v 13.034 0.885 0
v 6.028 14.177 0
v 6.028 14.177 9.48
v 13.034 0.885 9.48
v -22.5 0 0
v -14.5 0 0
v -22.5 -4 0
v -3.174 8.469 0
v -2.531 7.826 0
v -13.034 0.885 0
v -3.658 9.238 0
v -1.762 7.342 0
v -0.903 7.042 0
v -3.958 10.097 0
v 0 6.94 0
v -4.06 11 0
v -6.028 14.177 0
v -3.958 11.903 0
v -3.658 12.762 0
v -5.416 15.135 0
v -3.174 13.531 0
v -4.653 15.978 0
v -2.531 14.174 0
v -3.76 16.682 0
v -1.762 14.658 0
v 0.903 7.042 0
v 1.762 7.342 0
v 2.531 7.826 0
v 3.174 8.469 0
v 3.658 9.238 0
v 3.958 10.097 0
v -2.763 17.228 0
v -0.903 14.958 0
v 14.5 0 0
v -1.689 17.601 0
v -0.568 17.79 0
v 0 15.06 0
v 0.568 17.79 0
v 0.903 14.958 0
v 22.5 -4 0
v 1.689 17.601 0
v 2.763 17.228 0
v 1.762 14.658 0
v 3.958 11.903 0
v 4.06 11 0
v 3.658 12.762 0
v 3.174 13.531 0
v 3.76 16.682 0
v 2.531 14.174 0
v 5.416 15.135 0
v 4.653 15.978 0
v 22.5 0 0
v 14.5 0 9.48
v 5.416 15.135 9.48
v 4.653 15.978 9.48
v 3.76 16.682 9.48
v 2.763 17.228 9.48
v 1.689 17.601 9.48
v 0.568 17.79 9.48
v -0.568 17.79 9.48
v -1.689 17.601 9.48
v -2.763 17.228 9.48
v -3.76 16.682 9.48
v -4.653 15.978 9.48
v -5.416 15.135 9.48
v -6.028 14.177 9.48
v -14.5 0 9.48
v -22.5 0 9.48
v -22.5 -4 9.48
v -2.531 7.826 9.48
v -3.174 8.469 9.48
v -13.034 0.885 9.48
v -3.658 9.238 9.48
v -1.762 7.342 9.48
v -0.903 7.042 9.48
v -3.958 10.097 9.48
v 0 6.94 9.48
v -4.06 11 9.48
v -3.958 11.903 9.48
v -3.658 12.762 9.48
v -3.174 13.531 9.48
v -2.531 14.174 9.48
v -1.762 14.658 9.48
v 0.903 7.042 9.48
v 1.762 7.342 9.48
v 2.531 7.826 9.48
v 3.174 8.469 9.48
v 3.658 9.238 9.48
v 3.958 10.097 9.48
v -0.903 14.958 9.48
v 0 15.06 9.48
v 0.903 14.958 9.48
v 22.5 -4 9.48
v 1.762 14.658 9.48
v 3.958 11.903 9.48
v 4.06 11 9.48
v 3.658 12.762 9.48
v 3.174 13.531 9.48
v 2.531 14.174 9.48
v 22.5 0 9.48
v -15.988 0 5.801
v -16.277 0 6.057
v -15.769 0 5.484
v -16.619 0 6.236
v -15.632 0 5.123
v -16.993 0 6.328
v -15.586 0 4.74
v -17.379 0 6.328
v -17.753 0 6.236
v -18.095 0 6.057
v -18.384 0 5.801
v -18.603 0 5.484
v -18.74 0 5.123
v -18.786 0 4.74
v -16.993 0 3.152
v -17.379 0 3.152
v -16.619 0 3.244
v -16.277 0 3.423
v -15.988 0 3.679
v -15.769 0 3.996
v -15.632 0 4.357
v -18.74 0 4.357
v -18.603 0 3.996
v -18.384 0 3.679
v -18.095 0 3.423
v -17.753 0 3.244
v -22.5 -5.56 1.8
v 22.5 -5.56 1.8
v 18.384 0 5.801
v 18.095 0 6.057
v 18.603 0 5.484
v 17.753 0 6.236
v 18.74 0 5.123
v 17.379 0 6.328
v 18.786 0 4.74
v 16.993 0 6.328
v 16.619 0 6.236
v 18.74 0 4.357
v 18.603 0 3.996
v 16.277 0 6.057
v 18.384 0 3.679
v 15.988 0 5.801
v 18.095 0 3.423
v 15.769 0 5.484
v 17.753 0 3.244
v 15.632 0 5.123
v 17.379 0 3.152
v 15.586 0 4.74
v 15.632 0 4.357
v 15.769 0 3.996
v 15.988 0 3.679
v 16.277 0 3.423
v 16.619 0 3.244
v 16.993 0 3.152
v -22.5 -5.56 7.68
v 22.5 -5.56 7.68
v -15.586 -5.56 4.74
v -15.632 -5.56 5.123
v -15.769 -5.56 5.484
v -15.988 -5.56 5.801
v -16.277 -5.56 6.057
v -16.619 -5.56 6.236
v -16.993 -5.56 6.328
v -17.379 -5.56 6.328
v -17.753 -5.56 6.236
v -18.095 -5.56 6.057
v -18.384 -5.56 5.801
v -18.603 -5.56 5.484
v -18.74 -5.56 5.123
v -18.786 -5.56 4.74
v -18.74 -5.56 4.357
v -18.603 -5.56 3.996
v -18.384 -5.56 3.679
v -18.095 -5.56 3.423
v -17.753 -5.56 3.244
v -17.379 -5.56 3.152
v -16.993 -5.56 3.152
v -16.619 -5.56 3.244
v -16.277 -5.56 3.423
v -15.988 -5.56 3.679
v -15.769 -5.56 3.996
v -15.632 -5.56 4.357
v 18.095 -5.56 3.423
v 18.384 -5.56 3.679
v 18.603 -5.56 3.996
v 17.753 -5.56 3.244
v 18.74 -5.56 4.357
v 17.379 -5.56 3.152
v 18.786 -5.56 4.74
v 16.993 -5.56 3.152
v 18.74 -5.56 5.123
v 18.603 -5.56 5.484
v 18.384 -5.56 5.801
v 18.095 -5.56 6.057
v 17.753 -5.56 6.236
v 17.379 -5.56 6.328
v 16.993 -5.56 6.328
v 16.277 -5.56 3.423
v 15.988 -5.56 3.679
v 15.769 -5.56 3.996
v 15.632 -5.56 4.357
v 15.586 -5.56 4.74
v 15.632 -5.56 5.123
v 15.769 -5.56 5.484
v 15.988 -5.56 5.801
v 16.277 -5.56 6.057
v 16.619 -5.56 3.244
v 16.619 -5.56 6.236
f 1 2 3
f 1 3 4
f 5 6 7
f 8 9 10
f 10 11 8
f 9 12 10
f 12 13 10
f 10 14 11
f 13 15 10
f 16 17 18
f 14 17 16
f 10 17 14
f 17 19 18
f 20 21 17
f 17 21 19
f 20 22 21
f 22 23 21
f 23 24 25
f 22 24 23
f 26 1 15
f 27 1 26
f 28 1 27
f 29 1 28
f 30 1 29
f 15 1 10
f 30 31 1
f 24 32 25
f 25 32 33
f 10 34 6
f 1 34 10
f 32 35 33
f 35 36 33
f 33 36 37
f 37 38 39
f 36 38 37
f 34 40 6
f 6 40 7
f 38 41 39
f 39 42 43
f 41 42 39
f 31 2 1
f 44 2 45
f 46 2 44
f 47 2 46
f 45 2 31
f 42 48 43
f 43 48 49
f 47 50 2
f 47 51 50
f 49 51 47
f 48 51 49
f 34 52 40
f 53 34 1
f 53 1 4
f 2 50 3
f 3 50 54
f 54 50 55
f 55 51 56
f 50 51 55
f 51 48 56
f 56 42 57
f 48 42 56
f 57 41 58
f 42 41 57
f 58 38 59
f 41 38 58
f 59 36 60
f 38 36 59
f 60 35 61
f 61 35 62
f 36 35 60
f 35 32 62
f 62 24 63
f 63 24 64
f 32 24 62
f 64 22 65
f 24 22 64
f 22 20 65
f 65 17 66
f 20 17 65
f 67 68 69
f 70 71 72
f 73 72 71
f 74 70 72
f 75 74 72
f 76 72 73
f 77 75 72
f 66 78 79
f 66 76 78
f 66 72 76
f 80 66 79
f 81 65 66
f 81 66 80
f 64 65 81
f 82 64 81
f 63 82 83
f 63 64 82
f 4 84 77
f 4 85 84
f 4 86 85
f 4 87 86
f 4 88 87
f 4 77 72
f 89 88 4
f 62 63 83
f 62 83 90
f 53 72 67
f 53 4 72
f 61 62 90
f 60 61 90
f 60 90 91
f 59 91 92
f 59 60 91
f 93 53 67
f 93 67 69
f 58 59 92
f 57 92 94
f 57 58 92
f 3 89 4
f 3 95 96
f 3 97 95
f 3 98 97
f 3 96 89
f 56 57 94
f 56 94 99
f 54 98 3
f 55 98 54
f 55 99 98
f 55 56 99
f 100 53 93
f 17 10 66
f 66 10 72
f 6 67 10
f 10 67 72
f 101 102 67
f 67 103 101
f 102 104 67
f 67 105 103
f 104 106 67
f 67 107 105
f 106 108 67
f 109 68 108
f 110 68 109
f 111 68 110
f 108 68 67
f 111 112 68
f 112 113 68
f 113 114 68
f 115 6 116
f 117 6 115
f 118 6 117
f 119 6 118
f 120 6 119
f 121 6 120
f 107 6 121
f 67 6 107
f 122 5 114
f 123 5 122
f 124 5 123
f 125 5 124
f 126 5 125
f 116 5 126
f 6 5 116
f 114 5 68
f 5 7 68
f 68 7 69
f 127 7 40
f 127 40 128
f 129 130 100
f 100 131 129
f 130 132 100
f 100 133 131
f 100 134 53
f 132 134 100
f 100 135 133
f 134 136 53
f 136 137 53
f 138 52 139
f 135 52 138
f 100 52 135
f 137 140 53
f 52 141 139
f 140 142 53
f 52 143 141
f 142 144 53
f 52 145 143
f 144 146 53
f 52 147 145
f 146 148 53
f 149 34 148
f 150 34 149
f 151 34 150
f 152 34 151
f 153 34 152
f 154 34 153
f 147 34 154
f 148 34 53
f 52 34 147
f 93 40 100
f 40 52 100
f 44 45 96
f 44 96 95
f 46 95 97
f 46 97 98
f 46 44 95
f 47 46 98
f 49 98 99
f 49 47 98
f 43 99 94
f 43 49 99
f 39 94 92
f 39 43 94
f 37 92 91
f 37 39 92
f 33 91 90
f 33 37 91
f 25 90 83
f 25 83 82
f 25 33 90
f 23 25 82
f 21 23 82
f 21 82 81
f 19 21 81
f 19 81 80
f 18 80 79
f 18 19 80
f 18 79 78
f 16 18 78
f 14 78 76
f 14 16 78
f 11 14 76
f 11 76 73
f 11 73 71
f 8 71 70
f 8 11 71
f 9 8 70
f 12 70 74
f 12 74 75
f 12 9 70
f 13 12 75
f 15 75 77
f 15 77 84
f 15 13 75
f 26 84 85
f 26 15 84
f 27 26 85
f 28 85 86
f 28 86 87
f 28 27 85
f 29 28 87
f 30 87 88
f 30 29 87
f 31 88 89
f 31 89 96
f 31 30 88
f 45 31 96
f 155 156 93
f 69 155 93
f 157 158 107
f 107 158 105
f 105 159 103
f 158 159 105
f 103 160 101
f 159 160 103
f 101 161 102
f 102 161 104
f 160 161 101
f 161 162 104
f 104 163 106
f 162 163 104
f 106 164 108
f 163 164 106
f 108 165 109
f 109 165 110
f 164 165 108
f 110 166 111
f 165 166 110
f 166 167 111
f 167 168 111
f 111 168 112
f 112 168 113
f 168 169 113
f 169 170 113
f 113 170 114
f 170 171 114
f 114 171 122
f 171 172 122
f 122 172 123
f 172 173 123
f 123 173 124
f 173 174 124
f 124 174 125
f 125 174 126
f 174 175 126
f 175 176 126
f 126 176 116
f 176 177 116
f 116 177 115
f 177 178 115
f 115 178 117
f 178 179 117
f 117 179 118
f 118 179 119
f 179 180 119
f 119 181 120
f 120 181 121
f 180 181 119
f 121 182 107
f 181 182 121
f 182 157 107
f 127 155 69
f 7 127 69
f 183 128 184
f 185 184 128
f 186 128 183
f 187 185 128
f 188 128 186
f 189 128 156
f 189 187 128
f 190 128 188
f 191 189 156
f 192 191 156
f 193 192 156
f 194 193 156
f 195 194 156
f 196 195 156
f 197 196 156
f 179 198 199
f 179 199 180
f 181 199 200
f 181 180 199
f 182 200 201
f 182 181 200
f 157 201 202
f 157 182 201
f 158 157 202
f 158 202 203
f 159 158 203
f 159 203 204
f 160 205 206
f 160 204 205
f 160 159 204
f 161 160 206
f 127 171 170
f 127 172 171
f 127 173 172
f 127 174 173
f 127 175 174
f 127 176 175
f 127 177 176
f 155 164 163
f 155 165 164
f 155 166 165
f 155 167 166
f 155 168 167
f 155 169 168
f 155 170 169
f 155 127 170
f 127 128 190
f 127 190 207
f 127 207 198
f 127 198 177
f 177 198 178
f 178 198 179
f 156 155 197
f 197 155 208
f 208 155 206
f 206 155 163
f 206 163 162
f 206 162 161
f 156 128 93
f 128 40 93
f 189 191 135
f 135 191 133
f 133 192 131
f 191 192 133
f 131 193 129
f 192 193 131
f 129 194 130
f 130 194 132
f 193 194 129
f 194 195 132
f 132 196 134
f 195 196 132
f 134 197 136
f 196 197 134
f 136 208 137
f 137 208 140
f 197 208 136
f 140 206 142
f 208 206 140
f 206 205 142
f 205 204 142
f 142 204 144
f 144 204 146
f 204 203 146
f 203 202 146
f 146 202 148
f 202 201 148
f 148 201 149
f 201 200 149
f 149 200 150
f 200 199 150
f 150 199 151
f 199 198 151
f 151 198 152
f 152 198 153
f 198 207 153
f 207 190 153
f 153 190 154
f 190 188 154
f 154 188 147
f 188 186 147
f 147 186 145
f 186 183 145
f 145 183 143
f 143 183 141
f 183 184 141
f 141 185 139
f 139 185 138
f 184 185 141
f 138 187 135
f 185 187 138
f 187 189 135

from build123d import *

# Parameters (mm, degrees)
SKETCH_R     = 4.06
PAD_DEPTH    = 9.48
PAD001_DEPTH = 45
SKETCH002_R  = 1.6
POCKET_DEPTH = 23.37485
CHAMFER_SIZE = 1


with BuildPart() as part:
    # Sketch → Pad (new body)
    with BuildSketch(Plane.XY):
        with BuildLine():
            ThreePointArc((6.02785, 14.177039), (0, 17.81385), (-6.02785, 14.177039))
            Line((-6.02785, 14.177039), (-13.5, 0))
            Line((-13.5, 0), (-22.5, 0))
            Line((-22.5, 0), (-22.5, -4))
            Line((-22.5, -4), (22.5, -4))
            Line((22.5, -4), (22.5, 0))
            Line((22.5, 0), (13.5, 0))
            Line((6.02785, 14.177039), (13.5, 0))
        make_face()
        with Locations((0, 11)):
            Circle(SKETCH_R, mode=Mode.SUBTRACT)
    extrude(amount=PAD_DEPTH)

    # Sketch001 (on Face4 of Pad) → Pad001 (join)
    with BuildSketch(Plane(origin=(-22.5, 0, 0), x_dir=(0, -1, 0), z_dir=(-1, 0, 0))):
        Polygon((4, 9.48), (4, 0), (5.56, 1.8), (5.56, 7.68), align=None)
    extrude(amount=-PAD001_DEPTH)

    # Sketch002 (on Face14 of Pad001) → Pocket (cut, through all)
    with BuildSketch(Plane.XZ.offset(5.56)):
        with Locations((-17.186, 4.74)):
            Circle(SKETCH002_R)
        with Locations((17.186, 4.74)):
            Circle(SKETCH002_R)
    extrude(amount=-POCKET_DEPTH, mode=Mode.SUBTRACT)

    # Chamfer
    chamfer_edges = [part.edges().sort_by_distance(p)[0] for p in [
        (13.5, 0, 4.74),
        (-13.5, 0, 4.74),
    ]]
    chamfer(chamfer_edges, length=CHAMFER_SIZE)


solid = part.part
